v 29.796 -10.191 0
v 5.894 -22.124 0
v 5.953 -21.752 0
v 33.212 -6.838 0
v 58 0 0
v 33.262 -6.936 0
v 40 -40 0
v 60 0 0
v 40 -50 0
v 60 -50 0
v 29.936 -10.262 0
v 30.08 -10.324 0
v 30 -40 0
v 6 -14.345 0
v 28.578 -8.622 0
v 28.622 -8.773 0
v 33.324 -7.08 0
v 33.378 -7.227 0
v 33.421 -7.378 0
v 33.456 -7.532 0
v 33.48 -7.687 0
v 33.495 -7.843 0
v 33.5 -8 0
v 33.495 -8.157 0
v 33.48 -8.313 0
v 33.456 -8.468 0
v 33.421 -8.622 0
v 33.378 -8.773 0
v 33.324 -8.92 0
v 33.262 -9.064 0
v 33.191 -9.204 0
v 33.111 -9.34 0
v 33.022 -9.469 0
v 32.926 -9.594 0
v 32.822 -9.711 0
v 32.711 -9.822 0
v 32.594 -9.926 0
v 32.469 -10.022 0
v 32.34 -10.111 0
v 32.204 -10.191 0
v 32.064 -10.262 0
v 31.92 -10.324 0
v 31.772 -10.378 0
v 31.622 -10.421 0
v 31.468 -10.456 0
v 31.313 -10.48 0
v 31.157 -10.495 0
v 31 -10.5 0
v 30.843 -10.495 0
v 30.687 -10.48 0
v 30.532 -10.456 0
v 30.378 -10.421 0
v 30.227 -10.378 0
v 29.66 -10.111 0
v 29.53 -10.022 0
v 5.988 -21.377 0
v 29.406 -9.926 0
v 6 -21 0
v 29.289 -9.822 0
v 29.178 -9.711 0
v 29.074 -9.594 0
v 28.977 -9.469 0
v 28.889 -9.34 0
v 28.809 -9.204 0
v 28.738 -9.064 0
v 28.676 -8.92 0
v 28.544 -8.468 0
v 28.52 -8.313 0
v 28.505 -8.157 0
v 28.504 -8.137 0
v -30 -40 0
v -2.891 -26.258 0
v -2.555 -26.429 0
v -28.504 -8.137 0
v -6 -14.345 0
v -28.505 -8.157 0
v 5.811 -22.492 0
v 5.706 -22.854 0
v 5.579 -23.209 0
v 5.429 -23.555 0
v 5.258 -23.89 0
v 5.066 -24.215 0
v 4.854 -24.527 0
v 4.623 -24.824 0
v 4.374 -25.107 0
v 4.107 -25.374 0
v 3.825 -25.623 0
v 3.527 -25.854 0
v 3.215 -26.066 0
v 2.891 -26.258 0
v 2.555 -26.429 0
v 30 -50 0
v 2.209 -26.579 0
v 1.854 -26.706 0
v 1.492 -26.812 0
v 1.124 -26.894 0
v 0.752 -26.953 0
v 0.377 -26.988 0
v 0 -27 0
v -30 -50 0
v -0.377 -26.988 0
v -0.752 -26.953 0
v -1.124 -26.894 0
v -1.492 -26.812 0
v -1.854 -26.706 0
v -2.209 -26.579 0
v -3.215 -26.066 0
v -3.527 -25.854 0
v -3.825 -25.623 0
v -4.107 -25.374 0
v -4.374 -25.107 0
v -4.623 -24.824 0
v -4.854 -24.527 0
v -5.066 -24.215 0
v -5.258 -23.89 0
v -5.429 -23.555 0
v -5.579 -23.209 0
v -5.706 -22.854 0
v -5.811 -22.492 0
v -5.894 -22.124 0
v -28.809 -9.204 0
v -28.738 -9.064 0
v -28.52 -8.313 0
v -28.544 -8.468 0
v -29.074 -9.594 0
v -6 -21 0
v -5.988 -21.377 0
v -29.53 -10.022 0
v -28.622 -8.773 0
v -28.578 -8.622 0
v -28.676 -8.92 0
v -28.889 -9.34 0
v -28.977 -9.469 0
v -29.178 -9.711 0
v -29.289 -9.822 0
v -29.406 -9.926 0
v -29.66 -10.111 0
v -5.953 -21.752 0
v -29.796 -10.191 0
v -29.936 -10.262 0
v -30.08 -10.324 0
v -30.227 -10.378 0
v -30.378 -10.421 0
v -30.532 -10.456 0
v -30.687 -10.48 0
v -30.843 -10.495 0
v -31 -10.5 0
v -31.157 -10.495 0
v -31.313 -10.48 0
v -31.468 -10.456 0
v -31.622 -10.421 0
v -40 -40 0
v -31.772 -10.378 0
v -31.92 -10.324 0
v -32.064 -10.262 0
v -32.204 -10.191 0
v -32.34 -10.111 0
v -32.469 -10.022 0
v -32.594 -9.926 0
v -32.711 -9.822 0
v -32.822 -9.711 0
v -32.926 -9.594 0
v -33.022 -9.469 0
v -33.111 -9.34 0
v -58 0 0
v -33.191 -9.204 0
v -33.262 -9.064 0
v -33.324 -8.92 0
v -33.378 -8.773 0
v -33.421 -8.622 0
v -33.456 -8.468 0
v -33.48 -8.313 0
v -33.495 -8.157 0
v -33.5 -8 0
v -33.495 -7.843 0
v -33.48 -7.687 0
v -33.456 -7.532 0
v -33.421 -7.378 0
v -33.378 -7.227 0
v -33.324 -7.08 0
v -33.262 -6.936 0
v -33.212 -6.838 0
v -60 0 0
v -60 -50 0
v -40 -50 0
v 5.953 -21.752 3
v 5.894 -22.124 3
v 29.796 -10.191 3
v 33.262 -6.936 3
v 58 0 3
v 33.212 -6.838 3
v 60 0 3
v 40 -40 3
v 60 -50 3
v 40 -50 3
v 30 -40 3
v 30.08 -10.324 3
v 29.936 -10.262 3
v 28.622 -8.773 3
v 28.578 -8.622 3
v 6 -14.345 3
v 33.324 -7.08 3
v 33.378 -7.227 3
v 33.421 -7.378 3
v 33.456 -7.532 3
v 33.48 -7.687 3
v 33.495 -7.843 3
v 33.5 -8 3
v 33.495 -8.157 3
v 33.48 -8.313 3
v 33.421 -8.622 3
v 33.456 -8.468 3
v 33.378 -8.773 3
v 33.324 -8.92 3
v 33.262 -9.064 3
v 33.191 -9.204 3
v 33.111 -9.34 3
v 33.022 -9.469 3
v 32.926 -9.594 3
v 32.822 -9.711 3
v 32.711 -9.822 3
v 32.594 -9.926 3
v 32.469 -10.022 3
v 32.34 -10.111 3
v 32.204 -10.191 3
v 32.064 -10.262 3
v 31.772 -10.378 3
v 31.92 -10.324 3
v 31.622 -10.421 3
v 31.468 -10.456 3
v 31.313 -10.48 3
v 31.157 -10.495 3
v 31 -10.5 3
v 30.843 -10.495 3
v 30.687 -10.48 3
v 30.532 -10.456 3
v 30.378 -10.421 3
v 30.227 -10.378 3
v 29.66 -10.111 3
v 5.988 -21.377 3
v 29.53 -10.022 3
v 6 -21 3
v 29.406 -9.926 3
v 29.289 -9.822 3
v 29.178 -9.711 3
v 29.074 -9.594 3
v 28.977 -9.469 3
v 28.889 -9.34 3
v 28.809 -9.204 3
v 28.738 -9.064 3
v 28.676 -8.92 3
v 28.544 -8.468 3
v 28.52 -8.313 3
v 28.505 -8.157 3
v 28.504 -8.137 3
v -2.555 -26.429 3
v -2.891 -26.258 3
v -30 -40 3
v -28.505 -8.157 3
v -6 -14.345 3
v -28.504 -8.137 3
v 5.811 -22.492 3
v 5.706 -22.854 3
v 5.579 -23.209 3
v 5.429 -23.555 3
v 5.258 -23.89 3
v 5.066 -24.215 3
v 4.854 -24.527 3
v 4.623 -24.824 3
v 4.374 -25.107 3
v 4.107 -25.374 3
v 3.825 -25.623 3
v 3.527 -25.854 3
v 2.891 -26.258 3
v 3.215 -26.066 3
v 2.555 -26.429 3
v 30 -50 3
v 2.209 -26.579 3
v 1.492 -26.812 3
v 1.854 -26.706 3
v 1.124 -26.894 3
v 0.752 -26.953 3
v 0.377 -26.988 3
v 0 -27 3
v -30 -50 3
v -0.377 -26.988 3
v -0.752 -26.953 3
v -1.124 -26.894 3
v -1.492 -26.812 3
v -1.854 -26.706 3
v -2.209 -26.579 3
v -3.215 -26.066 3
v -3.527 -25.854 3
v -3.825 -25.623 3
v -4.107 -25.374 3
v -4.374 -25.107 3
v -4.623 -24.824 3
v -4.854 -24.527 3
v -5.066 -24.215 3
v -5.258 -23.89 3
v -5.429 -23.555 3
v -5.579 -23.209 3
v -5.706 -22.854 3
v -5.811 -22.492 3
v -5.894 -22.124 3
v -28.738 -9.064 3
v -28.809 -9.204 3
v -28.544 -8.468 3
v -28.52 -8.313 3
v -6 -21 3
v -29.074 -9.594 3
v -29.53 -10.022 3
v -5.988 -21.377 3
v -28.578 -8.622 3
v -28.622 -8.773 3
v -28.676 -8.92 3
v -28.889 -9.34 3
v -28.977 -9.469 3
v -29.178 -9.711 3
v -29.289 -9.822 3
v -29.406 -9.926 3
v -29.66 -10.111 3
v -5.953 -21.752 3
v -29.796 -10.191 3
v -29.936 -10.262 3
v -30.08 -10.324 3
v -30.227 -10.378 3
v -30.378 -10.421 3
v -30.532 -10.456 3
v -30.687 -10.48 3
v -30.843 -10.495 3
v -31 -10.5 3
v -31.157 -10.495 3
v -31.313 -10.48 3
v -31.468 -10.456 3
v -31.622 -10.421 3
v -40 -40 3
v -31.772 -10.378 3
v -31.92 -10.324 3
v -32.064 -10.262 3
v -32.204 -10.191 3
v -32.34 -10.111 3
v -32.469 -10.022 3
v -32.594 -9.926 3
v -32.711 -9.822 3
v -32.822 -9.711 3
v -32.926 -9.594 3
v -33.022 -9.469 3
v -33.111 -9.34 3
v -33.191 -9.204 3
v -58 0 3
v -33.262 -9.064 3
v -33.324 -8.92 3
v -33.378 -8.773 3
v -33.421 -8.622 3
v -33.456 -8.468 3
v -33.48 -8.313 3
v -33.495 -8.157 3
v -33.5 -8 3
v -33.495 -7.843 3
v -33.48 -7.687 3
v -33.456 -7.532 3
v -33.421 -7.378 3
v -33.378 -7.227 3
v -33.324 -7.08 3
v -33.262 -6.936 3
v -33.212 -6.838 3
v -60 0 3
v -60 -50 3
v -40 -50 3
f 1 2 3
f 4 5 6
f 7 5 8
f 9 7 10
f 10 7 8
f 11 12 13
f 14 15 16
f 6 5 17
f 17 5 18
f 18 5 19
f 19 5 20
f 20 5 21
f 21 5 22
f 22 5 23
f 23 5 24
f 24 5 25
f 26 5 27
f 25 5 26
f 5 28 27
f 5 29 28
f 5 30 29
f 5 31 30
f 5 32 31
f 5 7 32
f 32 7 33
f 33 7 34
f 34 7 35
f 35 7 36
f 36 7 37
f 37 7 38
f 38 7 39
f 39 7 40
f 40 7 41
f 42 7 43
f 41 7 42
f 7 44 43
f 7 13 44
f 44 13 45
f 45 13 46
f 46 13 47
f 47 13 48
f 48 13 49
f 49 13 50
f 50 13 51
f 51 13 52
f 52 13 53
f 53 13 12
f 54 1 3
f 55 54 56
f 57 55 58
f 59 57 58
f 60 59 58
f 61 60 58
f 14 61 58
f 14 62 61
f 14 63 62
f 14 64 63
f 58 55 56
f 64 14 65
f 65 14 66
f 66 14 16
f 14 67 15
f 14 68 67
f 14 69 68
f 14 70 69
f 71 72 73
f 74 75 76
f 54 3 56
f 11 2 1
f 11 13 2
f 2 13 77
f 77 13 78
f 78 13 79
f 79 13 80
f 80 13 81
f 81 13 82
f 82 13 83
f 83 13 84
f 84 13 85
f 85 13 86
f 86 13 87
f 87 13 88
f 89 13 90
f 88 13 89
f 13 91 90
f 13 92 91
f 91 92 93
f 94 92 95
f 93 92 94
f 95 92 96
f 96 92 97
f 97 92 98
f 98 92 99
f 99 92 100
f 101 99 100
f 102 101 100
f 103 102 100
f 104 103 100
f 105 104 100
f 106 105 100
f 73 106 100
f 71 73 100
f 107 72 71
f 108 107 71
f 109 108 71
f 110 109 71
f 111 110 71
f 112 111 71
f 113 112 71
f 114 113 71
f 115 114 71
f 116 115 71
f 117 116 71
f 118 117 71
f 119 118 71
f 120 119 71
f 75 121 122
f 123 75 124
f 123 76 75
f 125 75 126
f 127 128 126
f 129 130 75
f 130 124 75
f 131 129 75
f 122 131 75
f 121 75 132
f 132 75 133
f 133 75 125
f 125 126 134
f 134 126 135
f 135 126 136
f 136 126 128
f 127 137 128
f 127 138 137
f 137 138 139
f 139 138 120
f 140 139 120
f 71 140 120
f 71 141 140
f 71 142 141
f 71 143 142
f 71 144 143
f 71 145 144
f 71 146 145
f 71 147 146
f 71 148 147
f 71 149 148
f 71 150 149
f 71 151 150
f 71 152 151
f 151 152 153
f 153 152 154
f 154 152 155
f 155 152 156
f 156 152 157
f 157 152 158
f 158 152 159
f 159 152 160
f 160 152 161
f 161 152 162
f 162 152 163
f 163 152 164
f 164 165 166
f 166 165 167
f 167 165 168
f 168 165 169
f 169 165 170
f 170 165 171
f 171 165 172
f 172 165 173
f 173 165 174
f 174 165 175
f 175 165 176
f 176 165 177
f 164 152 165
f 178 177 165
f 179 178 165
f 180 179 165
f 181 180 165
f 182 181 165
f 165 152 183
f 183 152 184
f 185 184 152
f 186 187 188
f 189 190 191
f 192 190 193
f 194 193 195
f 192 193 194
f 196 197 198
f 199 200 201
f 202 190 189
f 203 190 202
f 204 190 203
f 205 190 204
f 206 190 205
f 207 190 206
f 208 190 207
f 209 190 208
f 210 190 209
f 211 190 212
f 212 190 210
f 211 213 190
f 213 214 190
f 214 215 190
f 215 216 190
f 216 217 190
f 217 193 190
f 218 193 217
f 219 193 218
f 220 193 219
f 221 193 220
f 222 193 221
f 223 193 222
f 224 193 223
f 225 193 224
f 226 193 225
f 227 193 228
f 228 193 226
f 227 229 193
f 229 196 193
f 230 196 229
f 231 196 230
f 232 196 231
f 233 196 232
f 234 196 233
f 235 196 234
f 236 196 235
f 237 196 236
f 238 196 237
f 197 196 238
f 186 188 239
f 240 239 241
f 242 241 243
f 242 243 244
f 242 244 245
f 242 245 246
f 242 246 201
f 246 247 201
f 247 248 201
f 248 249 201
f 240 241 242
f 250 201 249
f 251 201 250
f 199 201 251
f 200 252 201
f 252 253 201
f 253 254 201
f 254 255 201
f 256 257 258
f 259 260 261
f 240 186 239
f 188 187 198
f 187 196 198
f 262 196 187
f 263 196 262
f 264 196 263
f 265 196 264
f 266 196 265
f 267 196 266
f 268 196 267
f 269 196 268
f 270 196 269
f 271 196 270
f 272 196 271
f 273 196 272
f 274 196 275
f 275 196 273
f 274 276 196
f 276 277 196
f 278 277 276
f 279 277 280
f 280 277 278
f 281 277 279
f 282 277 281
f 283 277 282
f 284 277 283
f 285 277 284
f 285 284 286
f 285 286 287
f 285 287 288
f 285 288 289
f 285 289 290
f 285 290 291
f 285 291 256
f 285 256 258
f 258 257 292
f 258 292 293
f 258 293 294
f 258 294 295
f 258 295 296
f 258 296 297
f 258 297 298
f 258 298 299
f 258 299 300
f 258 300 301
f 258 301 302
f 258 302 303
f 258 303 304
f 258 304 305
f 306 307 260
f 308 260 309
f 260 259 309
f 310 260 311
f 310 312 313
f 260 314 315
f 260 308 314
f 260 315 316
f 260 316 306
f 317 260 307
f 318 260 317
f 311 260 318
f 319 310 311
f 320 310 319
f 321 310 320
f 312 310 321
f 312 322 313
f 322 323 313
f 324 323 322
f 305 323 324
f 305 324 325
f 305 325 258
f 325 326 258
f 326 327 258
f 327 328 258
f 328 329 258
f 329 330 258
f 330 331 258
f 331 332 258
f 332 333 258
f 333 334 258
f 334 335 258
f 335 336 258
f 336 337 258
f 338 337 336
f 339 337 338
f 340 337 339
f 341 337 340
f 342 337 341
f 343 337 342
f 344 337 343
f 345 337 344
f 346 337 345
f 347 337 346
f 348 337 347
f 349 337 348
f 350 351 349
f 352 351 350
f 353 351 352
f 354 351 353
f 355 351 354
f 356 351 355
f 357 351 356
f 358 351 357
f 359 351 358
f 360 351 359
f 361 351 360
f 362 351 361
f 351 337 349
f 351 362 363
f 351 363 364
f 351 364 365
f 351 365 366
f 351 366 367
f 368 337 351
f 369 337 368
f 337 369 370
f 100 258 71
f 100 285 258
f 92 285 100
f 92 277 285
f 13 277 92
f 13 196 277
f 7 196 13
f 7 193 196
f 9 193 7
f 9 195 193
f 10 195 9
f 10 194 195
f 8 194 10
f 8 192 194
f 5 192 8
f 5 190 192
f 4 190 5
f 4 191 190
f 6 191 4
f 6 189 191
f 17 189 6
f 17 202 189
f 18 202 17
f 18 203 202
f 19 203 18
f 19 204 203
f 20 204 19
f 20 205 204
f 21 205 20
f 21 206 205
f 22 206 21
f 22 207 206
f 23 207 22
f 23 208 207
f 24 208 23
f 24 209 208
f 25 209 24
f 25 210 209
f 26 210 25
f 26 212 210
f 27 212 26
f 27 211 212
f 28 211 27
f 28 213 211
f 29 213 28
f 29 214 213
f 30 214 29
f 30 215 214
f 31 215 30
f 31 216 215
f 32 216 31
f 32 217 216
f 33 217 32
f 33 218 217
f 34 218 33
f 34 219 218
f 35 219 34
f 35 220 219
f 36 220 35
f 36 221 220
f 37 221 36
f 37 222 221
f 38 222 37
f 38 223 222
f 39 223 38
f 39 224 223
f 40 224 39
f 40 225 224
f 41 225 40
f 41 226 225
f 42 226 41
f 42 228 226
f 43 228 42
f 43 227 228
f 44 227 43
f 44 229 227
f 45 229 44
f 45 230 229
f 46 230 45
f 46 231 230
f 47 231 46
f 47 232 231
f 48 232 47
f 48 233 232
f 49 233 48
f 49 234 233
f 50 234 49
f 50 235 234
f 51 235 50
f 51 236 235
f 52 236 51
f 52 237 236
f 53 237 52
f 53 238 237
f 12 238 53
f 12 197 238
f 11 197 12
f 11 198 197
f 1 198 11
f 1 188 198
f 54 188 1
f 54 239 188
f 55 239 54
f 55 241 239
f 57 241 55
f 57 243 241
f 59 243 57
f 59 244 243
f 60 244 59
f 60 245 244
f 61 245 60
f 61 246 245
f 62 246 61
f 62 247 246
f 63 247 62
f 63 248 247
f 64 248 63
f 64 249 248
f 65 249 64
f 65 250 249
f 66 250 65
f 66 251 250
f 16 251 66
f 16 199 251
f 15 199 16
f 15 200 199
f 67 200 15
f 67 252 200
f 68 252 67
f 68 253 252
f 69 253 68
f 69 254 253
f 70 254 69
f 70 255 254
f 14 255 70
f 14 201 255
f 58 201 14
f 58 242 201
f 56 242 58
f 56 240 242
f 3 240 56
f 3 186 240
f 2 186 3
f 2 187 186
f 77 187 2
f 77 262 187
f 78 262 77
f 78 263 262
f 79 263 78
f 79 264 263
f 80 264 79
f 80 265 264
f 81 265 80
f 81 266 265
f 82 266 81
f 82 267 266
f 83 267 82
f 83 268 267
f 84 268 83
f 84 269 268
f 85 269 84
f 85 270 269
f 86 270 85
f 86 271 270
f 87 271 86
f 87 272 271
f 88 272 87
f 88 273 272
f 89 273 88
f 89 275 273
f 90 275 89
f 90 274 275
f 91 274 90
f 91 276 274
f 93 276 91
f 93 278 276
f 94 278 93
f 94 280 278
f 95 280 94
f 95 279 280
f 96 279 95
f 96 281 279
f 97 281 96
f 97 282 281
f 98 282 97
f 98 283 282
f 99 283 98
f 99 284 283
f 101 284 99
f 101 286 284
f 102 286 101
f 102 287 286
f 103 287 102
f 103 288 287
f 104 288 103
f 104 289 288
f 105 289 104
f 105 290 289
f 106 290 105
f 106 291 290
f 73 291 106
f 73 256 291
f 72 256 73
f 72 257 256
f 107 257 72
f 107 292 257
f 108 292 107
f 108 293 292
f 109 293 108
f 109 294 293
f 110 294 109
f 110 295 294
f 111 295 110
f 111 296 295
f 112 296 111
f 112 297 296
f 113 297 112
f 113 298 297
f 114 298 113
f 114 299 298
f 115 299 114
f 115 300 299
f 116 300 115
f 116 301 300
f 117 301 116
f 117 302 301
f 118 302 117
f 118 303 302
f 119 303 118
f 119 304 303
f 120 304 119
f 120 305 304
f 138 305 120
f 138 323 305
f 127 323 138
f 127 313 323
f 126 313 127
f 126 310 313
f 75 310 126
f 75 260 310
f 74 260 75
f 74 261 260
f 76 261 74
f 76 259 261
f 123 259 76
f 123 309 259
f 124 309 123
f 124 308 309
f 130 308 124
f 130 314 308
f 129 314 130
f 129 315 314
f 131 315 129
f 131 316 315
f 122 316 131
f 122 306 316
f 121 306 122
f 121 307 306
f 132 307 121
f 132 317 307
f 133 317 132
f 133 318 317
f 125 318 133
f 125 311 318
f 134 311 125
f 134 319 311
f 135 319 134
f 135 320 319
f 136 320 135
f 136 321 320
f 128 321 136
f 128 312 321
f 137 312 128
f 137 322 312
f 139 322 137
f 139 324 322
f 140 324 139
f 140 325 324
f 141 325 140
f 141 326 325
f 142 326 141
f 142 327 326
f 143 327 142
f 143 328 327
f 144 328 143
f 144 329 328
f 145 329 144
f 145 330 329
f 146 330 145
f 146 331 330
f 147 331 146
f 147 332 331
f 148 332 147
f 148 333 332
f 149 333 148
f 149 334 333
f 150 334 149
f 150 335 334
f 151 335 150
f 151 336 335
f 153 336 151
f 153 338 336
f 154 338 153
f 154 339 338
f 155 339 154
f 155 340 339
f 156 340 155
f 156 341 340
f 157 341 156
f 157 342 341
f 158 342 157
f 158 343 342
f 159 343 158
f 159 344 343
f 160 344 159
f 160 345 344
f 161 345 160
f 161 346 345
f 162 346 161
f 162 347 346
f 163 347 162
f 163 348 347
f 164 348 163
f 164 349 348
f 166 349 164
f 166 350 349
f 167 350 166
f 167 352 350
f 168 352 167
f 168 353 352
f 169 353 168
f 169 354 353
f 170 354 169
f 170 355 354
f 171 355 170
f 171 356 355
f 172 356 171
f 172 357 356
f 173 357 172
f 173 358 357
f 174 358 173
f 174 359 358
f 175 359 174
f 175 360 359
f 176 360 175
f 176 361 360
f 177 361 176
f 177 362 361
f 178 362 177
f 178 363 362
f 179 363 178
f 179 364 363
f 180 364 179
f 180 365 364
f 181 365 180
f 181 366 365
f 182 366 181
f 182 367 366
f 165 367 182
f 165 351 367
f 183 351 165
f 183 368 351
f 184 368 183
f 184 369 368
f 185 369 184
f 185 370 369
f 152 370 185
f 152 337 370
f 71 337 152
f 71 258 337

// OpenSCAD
$fn=100;
linear_extrude(3)
difference(){
	translate([-120/2, -50])square([120, 50]);
	union(){
		polygon([[-58, 0], [58, 0], [0, -16]]);
		translate([31, -8])circle(d=5);
		translate([-31, -8])circle(d=5);
		translate([0, -21])circle(d=12);
		translate([0, -16])square([12,10], center=true);
	}
	translate([30, -50])square([10,10]);
	translate([-40, -50])square([10,10]);
}
